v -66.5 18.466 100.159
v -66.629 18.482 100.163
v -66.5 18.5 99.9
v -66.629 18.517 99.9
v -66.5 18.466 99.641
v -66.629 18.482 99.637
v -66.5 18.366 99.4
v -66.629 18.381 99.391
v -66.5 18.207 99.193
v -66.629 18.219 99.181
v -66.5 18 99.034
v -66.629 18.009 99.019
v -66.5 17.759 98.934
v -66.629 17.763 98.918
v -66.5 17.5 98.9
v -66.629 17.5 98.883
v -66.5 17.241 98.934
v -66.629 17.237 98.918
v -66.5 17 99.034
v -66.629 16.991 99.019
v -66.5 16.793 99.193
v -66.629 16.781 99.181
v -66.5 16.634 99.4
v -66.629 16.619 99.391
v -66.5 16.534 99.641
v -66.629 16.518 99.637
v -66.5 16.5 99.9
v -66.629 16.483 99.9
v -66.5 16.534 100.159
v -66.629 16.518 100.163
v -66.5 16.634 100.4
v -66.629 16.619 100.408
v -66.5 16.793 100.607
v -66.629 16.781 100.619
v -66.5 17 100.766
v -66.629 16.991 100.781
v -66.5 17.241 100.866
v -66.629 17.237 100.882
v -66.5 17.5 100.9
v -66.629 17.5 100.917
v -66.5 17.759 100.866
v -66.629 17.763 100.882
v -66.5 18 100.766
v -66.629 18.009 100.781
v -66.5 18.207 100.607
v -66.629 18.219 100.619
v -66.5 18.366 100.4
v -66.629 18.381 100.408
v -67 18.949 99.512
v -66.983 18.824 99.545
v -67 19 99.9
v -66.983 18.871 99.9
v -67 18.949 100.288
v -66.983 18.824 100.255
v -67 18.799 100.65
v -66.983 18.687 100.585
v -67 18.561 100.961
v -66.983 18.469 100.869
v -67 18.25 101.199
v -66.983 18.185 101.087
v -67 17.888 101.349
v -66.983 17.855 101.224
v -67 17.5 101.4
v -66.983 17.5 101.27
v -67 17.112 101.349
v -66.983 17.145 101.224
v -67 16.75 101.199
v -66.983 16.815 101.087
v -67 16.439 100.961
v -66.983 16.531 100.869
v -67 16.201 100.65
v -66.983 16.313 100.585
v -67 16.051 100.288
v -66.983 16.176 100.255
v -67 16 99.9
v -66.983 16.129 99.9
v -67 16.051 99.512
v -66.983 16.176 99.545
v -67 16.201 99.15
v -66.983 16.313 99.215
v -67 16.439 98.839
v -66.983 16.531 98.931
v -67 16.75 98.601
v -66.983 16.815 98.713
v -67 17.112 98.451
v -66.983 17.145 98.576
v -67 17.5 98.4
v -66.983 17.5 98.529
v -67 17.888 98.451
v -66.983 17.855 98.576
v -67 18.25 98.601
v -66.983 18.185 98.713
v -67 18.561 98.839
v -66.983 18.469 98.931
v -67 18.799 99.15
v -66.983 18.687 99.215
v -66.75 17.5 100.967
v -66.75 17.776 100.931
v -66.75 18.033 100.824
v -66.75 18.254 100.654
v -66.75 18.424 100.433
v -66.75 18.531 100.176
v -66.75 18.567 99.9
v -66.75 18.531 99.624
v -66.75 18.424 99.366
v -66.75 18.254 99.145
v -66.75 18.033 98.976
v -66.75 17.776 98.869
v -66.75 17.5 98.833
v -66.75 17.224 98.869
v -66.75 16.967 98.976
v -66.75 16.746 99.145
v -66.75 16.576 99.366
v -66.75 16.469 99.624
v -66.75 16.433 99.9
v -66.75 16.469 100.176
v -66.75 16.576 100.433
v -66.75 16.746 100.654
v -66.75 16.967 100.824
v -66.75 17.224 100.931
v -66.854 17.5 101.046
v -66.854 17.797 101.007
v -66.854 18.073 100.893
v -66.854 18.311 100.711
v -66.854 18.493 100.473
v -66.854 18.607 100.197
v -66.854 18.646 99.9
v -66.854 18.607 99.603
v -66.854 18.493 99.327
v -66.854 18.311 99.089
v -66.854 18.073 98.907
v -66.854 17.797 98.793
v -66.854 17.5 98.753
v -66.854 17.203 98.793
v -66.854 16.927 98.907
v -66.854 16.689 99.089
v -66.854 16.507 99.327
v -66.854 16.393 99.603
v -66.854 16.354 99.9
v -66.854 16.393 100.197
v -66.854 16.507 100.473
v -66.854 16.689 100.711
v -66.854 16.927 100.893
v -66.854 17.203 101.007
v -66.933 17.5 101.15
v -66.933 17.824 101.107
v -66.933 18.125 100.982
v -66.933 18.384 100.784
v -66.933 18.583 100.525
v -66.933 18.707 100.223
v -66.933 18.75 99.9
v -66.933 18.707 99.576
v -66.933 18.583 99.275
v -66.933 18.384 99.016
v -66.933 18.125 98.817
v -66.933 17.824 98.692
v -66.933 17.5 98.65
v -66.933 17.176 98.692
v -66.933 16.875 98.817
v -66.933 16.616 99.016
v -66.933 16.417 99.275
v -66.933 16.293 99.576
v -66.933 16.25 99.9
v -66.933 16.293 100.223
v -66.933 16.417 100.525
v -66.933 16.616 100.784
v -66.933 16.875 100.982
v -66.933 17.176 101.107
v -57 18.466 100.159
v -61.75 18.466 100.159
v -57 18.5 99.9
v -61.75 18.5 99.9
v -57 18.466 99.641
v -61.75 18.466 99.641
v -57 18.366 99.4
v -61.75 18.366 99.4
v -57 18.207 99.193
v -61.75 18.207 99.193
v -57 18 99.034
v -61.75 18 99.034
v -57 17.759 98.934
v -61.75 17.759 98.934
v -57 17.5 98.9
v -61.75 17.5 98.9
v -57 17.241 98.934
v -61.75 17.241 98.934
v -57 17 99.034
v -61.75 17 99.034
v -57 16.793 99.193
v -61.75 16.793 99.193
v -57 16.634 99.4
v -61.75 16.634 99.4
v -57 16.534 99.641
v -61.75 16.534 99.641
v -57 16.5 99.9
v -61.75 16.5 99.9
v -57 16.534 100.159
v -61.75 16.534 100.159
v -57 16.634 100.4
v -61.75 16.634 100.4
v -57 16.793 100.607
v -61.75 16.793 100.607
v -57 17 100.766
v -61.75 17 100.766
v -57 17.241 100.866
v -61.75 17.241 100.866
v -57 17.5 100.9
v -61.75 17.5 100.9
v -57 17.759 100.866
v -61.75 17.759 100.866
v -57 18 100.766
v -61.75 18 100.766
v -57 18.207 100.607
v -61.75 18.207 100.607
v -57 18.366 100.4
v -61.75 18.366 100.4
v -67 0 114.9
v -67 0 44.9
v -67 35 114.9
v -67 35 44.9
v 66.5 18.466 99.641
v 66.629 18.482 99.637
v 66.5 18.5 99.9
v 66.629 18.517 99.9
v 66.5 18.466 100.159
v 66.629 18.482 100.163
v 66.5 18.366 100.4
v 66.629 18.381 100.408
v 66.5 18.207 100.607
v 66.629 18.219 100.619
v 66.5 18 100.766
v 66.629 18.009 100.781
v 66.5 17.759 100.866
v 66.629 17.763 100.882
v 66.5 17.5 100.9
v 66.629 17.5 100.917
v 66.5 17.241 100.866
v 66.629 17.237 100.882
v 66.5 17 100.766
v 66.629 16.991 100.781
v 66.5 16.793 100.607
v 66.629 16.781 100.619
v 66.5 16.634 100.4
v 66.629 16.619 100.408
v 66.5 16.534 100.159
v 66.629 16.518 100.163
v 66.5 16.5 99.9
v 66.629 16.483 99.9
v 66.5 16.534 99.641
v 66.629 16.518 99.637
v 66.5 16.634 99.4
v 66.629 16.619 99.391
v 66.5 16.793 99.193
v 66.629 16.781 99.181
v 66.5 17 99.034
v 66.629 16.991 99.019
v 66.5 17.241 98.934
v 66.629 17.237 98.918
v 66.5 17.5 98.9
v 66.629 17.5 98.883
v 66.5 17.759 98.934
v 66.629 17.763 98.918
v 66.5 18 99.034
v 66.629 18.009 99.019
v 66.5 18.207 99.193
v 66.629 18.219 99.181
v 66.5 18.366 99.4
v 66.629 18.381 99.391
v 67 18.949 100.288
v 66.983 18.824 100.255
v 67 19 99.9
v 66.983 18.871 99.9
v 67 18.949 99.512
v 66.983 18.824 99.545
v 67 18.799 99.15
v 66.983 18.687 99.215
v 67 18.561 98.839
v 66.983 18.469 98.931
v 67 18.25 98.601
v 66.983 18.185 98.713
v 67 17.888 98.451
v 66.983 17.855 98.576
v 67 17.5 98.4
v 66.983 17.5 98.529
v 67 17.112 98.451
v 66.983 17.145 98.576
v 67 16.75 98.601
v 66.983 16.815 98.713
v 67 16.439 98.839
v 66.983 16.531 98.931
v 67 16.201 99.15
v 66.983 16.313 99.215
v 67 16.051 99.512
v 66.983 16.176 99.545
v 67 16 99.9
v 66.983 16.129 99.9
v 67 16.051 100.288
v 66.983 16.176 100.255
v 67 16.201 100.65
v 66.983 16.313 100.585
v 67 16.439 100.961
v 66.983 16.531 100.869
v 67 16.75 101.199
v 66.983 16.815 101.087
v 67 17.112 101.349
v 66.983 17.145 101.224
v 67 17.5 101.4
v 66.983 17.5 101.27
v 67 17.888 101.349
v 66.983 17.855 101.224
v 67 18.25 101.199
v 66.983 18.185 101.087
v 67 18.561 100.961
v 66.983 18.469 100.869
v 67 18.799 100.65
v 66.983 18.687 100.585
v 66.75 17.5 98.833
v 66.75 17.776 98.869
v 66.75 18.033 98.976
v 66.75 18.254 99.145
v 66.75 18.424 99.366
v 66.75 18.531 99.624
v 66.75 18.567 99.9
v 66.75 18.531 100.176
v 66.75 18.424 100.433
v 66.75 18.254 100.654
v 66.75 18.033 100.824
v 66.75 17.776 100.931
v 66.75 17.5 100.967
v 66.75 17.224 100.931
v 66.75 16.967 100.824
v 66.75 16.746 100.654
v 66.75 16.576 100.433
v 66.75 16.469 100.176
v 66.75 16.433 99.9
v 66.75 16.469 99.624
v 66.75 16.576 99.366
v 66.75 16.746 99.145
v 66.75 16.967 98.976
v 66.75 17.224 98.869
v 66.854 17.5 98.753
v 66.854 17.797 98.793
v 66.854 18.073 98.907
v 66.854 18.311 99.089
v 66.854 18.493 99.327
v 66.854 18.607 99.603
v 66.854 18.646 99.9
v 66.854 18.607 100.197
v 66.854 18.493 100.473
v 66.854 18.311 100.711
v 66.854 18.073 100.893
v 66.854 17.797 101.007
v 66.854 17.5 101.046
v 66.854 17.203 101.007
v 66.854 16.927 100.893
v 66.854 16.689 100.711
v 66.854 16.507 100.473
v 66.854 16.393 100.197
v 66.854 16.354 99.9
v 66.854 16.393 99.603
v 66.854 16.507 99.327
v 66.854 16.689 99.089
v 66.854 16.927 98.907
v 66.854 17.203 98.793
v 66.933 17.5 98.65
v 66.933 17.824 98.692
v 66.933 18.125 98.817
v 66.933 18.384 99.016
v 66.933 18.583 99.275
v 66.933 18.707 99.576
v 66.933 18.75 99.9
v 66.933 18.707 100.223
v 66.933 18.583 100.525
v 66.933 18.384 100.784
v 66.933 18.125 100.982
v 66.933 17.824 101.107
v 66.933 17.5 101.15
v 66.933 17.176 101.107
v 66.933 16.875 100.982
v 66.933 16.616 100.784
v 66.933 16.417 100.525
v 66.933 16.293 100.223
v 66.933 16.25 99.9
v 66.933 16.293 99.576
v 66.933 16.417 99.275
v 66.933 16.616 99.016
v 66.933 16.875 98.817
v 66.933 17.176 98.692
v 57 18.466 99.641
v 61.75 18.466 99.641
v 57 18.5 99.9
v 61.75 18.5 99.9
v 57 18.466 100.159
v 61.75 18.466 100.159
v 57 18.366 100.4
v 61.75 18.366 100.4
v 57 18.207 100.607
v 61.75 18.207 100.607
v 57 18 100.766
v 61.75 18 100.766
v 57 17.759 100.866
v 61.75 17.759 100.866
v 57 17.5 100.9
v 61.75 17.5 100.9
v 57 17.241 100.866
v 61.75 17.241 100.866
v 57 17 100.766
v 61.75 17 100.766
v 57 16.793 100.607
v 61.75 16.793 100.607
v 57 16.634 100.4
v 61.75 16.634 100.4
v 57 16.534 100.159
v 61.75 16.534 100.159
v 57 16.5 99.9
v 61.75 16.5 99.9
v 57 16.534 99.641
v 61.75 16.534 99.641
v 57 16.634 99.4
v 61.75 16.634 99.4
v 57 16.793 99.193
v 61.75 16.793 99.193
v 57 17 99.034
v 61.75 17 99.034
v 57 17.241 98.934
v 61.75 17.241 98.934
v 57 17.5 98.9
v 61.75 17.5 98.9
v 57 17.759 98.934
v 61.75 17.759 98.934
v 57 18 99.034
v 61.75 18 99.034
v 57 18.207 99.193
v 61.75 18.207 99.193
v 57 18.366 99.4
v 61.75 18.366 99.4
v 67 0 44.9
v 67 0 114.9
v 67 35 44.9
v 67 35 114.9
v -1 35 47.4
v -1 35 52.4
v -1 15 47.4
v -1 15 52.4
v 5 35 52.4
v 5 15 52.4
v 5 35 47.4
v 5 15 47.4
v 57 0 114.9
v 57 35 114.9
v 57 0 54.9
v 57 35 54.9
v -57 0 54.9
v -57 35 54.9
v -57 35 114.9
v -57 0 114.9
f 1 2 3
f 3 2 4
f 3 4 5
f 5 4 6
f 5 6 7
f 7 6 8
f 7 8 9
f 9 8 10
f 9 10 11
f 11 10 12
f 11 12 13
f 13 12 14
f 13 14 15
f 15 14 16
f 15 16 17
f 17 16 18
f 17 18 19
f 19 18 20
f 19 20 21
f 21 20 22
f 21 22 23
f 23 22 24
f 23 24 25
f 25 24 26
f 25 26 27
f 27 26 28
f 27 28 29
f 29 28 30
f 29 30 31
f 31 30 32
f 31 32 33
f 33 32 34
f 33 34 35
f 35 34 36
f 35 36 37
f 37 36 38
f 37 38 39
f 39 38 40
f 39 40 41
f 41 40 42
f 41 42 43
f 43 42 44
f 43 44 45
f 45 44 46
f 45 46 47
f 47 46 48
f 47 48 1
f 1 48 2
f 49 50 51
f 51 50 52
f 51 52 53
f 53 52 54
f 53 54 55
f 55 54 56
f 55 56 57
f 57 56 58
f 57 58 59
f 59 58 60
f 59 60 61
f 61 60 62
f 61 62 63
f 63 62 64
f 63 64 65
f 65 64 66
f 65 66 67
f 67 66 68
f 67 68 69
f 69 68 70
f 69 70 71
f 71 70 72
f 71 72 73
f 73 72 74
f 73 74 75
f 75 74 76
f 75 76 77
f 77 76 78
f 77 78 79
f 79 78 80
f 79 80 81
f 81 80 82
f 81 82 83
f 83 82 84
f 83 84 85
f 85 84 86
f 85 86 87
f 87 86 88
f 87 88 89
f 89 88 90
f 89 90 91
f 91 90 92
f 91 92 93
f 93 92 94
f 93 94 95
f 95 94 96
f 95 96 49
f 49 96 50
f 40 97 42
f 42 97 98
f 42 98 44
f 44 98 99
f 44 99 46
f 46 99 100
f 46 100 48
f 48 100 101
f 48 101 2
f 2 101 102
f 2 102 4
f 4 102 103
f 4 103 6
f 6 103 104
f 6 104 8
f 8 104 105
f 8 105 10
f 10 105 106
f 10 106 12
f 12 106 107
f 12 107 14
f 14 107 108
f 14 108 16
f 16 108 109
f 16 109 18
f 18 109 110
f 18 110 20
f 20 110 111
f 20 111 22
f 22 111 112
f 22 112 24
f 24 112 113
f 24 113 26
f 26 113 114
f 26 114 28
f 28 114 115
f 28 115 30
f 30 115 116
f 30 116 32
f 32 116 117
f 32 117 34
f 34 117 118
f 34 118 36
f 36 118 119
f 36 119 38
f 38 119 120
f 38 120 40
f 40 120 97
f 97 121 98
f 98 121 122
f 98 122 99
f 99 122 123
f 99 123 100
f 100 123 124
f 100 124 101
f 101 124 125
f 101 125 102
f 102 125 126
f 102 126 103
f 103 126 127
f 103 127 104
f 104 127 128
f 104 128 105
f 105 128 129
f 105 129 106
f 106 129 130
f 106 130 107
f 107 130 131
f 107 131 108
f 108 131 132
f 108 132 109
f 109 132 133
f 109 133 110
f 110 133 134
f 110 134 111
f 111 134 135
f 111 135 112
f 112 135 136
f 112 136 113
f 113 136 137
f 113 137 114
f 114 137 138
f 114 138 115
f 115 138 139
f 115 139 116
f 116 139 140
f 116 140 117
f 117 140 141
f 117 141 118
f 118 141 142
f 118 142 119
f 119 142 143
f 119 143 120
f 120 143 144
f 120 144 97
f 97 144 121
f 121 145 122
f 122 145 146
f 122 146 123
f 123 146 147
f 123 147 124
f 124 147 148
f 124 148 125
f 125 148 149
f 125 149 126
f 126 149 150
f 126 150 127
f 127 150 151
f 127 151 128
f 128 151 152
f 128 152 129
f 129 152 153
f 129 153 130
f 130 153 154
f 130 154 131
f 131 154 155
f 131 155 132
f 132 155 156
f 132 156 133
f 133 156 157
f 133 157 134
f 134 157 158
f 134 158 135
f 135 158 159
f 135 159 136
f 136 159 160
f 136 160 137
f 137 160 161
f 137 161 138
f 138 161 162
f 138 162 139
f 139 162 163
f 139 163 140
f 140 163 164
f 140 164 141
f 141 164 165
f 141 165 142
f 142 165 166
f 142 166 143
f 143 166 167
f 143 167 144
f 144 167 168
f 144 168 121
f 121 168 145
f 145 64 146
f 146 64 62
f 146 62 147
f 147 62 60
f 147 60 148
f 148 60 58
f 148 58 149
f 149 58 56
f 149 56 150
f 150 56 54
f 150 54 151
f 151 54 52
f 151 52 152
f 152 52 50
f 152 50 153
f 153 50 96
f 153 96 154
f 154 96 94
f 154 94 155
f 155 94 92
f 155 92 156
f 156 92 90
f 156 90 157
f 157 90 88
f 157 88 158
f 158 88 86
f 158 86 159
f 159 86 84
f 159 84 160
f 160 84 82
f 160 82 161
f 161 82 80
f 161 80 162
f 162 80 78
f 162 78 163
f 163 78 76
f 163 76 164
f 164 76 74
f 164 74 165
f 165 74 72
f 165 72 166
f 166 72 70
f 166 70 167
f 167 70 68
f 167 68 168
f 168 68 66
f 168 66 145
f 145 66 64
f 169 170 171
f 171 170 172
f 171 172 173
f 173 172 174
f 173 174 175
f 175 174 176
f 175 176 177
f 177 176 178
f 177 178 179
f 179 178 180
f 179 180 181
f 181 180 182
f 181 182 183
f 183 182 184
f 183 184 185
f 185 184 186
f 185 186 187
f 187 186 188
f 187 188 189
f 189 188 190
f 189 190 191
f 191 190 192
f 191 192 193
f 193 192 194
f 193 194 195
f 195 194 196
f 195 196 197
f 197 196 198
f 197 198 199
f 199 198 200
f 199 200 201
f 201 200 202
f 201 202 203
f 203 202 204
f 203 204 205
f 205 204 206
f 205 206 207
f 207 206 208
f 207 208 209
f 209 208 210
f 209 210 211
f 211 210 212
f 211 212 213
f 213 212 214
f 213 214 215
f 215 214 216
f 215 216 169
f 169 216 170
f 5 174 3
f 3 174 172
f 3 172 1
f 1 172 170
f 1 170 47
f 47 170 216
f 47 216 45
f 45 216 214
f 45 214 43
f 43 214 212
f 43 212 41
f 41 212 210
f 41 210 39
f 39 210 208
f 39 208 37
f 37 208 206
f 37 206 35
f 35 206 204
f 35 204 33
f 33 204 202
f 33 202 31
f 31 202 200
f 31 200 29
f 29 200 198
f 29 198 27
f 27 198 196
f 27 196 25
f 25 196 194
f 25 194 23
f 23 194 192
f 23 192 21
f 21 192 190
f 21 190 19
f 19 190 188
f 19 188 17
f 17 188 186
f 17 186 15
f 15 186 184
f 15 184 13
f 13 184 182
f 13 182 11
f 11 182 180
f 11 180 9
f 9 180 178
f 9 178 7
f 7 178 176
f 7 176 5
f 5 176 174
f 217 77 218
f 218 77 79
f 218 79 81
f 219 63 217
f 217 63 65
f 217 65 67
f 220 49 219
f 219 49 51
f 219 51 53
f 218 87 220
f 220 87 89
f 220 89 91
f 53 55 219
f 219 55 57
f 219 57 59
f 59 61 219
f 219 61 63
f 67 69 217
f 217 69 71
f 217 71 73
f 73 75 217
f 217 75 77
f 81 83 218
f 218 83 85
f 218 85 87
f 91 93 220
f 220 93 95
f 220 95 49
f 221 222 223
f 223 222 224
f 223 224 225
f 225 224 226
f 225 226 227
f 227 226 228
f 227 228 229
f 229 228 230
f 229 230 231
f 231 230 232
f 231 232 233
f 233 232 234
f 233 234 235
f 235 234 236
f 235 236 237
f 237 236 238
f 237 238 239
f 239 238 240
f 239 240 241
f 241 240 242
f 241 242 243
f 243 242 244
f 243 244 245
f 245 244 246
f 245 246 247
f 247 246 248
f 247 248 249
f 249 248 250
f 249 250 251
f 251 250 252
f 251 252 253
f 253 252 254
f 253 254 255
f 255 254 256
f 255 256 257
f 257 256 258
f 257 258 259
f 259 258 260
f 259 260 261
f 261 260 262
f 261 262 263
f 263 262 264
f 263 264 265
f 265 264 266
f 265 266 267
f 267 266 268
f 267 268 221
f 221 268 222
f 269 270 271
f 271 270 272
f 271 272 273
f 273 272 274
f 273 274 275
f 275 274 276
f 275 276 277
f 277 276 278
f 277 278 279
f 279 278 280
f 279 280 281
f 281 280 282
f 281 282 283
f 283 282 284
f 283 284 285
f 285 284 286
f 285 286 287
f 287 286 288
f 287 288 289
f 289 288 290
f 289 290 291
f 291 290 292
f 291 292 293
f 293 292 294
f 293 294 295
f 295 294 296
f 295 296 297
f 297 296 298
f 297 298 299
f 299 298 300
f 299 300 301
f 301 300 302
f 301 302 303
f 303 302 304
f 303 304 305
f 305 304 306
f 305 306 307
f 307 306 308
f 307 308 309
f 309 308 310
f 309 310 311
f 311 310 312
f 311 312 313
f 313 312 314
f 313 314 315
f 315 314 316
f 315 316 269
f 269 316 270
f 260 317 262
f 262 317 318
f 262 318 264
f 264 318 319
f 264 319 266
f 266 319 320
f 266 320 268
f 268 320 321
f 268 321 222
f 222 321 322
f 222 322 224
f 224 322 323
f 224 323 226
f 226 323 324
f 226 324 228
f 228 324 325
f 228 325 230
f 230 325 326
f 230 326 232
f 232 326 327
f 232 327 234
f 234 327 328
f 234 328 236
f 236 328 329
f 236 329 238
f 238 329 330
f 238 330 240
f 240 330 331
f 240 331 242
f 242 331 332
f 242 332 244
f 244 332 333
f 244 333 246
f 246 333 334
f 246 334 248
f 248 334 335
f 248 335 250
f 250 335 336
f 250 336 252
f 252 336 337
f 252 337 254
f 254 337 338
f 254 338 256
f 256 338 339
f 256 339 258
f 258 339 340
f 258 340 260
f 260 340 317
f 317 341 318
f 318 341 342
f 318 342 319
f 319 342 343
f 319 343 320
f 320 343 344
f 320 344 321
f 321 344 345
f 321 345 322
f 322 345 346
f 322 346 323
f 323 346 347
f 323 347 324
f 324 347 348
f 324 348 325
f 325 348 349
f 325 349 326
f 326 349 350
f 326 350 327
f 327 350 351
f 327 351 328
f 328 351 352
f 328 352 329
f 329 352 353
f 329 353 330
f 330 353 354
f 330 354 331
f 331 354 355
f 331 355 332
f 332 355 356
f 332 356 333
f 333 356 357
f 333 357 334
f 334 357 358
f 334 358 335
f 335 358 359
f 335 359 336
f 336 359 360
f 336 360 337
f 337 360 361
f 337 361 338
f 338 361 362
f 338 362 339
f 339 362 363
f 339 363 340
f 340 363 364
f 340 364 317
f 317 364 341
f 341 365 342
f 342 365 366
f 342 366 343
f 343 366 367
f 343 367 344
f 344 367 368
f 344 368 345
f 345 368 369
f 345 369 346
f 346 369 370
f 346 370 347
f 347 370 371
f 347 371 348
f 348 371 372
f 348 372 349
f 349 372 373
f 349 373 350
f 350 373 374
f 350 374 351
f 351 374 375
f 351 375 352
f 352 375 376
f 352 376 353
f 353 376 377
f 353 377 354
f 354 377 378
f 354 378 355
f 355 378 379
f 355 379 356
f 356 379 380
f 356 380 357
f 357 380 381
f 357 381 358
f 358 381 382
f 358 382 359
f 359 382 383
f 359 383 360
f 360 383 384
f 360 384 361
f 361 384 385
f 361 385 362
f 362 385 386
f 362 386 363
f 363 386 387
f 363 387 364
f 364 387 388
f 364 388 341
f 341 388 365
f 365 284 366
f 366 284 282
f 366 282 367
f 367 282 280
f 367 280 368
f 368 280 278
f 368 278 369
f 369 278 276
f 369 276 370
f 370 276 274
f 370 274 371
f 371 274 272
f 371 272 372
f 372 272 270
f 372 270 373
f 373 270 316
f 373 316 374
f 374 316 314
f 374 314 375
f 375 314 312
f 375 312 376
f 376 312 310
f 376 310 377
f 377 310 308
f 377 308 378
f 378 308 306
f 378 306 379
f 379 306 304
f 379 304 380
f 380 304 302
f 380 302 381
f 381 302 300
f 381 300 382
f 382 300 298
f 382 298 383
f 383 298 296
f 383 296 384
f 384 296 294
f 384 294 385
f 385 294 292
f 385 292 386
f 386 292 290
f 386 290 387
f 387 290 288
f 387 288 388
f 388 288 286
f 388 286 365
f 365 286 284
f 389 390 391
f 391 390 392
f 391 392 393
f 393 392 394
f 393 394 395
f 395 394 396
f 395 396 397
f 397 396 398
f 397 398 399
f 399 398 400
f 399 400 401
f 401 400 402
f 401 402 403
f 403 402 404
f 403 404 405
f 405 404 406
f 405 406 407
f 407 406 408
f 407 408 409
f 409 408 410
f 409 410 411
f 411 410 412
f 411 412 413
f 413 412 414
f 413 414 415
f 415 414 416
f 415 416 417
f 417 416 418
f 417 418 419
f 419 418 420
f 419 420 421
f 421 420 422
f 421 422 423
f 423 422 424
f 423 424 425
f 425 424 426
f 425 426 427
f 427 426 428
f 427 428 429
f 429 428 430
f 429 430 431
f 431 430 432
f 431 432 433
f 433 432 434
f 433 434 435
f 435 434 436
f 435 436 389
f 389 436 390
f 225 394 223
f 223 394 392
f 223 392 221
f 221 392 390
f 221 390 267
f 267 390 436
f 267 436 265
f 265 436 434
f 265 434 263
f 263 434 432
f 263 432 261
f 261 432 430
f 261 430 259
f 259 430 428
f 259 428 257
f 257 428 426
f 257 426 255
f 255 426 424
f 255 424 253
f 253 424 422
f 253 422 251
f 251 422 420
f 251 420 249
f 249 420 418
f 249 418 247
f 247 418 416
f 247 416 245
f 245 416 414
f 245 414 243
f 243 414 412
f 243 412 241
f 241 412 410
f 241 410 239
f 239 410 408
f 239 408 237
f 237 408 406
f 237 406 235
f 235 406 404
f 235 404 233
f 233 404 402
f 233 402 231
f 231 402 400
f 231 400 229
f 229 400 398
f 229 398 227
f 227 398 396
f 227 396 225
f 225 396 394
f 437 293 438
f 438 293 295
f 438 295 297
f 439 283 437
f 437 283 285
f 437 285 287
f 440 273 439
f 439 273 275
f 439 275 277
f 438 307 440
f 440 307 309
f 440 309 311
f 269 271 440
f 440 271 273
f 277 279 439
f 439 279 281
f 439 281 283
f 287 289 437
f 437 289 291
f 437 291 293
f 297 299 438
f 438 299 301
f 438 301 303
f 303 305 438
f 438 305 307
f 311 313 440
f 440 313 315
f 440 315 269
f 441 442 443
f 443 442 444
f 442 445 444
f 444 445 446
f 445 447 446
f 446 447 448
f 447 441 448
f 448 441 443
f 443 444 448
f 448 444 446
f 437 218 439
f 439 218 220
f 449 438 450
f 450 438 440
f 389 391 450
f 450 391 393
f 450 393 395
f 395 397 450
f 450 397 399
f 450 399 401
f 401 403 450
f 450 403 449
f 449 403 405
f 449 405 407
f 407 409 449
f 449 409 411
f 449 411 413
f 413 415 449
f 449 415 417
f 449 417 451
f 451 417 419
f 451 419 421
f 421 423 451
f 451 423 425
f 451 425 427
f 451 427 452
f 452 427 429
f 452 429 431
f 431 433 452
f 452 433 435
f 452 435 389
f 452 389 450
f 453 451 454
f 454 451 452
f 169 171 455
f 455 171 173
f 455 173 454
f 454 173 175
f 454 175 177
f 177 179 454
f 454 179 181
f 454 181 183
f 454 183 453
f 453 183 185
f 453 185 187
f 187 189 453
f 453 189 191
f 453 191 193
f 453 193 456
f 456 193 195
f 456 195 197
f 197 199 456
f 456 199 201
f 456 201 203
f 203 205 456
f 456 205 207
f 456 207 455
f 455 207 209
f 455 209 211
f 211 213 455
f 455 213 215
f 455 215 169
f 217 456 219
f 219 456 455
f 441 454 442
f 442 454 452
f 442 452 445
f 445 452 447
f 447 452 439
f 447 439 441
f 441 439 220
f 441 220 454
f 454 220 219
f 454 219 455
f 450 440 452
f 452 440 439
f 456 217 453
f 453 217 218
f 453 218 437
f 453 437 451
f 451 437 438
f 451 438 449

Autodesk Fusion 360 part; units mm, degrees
sketch "Sketch1" plane through (0, 0, 0) normal (0, 1, 0) x (1, 0, 0)
  line L0 (-67, -114.8999) -> (-57, -114.8999)
  line L1 (-57, -114.8999) -> (-57, -54.8999)
  line L2 (-57, -54.8999) -> (57, -54.8999)
  line L3 (57, -54.8999) -> (57, -114.8999)
  line L4 (57, -114.8999) -> (67, -114.8999)
  line L5 (67, -114.8999) -> (67, -44.8999)
  line L6 (67, -44.8999) -> (-67, -44.8999)
  line L7 (-67, -44.8999) -> (-67, -114.8999)
  dimension "d2" = 67
  dimension "d3" = 10
  dimension "d6" = 70
  dimension "d16" = 10
  dimension "d17" = 10
  dimension "d31" = 67
extrude "Extrude1" add sketch "Sketch1" along normal blind 35
sketch "Sketch3" plane through (-67, 0, 0) normal (-1, 0, 0) x (0, -1, 0)
  line L0 (0, 44.8999) -> (0, 114.8999)
  line L1 (0, 114.8999) -> (-35, 114.8999)
  line L2 (-35, 114.8999) -> (-35, 44.8999)
  line L3 (-35, 44.8999) -> (0, 44.8999)
  circle A0 centre (-17.5, 99.8999) radius 1
  dimension "d12" = 2
  dimension "d15" = 17.5
  dimension "d24" = 15
extrude "Extrude2" cut sketch "Sketch3" against normal blind 101 contours A0
sketch "Sketch4" plane through (0, 35, 0) normal (0, 1, 0) x (-1, 0, 0)
  line L0 (67, 44.8999) -> (67, 114.8999)
  line L1 (67, 114.8999) -> (57, 114.8999)
  line L2 (57, 114.8999) -> (57, 54.8999)
  line L3 (57, 54.8999) -> (-57, 54.8999)
  line L4 (-57, 54.8999) -> (-57, 114.8999)
  line L5 (-57, 114.8999) -> (-67, 114.8999)
  line L6 (-67, 114.8999) -> (-67, 44.8999)
  line L7 (-67, 44.8999) -> (67, 44.8999)
  line L8 (-5, 52.3999) -> (1, 52.3999)
  line L9 (1, 52.3999) -> (1, 47.3999)
  line L10 (1, 47.3999) -> (-5, 47.3999)
  line L11 (-5, 47.3999) -> (-5, 52.3999)
  line L12 (-5, 52.3999) -> (1, 47.3999) construction
  line L13 (1, 52.3999) -> (-5, 47.3999) construction
  point P0 (-2, 49.8999)
  dimension "d18" = 5
  dimension "d19" = 6
  dimension "d20" = 5
  dimension "d21" = 65
extrude "Extrude3" cut sketch "Sketch4" against normal blind 20 contours L8 L9 L10 L11
mirror "Mirror2" about plane through (0, 0, 0) normal (1, 0, 0) of "Extrude2"
fillet "Fillet2" radius 0.5 2 edges at (67, 18.4323, 99.5383) (-67, 18.4323, 100.2615)
